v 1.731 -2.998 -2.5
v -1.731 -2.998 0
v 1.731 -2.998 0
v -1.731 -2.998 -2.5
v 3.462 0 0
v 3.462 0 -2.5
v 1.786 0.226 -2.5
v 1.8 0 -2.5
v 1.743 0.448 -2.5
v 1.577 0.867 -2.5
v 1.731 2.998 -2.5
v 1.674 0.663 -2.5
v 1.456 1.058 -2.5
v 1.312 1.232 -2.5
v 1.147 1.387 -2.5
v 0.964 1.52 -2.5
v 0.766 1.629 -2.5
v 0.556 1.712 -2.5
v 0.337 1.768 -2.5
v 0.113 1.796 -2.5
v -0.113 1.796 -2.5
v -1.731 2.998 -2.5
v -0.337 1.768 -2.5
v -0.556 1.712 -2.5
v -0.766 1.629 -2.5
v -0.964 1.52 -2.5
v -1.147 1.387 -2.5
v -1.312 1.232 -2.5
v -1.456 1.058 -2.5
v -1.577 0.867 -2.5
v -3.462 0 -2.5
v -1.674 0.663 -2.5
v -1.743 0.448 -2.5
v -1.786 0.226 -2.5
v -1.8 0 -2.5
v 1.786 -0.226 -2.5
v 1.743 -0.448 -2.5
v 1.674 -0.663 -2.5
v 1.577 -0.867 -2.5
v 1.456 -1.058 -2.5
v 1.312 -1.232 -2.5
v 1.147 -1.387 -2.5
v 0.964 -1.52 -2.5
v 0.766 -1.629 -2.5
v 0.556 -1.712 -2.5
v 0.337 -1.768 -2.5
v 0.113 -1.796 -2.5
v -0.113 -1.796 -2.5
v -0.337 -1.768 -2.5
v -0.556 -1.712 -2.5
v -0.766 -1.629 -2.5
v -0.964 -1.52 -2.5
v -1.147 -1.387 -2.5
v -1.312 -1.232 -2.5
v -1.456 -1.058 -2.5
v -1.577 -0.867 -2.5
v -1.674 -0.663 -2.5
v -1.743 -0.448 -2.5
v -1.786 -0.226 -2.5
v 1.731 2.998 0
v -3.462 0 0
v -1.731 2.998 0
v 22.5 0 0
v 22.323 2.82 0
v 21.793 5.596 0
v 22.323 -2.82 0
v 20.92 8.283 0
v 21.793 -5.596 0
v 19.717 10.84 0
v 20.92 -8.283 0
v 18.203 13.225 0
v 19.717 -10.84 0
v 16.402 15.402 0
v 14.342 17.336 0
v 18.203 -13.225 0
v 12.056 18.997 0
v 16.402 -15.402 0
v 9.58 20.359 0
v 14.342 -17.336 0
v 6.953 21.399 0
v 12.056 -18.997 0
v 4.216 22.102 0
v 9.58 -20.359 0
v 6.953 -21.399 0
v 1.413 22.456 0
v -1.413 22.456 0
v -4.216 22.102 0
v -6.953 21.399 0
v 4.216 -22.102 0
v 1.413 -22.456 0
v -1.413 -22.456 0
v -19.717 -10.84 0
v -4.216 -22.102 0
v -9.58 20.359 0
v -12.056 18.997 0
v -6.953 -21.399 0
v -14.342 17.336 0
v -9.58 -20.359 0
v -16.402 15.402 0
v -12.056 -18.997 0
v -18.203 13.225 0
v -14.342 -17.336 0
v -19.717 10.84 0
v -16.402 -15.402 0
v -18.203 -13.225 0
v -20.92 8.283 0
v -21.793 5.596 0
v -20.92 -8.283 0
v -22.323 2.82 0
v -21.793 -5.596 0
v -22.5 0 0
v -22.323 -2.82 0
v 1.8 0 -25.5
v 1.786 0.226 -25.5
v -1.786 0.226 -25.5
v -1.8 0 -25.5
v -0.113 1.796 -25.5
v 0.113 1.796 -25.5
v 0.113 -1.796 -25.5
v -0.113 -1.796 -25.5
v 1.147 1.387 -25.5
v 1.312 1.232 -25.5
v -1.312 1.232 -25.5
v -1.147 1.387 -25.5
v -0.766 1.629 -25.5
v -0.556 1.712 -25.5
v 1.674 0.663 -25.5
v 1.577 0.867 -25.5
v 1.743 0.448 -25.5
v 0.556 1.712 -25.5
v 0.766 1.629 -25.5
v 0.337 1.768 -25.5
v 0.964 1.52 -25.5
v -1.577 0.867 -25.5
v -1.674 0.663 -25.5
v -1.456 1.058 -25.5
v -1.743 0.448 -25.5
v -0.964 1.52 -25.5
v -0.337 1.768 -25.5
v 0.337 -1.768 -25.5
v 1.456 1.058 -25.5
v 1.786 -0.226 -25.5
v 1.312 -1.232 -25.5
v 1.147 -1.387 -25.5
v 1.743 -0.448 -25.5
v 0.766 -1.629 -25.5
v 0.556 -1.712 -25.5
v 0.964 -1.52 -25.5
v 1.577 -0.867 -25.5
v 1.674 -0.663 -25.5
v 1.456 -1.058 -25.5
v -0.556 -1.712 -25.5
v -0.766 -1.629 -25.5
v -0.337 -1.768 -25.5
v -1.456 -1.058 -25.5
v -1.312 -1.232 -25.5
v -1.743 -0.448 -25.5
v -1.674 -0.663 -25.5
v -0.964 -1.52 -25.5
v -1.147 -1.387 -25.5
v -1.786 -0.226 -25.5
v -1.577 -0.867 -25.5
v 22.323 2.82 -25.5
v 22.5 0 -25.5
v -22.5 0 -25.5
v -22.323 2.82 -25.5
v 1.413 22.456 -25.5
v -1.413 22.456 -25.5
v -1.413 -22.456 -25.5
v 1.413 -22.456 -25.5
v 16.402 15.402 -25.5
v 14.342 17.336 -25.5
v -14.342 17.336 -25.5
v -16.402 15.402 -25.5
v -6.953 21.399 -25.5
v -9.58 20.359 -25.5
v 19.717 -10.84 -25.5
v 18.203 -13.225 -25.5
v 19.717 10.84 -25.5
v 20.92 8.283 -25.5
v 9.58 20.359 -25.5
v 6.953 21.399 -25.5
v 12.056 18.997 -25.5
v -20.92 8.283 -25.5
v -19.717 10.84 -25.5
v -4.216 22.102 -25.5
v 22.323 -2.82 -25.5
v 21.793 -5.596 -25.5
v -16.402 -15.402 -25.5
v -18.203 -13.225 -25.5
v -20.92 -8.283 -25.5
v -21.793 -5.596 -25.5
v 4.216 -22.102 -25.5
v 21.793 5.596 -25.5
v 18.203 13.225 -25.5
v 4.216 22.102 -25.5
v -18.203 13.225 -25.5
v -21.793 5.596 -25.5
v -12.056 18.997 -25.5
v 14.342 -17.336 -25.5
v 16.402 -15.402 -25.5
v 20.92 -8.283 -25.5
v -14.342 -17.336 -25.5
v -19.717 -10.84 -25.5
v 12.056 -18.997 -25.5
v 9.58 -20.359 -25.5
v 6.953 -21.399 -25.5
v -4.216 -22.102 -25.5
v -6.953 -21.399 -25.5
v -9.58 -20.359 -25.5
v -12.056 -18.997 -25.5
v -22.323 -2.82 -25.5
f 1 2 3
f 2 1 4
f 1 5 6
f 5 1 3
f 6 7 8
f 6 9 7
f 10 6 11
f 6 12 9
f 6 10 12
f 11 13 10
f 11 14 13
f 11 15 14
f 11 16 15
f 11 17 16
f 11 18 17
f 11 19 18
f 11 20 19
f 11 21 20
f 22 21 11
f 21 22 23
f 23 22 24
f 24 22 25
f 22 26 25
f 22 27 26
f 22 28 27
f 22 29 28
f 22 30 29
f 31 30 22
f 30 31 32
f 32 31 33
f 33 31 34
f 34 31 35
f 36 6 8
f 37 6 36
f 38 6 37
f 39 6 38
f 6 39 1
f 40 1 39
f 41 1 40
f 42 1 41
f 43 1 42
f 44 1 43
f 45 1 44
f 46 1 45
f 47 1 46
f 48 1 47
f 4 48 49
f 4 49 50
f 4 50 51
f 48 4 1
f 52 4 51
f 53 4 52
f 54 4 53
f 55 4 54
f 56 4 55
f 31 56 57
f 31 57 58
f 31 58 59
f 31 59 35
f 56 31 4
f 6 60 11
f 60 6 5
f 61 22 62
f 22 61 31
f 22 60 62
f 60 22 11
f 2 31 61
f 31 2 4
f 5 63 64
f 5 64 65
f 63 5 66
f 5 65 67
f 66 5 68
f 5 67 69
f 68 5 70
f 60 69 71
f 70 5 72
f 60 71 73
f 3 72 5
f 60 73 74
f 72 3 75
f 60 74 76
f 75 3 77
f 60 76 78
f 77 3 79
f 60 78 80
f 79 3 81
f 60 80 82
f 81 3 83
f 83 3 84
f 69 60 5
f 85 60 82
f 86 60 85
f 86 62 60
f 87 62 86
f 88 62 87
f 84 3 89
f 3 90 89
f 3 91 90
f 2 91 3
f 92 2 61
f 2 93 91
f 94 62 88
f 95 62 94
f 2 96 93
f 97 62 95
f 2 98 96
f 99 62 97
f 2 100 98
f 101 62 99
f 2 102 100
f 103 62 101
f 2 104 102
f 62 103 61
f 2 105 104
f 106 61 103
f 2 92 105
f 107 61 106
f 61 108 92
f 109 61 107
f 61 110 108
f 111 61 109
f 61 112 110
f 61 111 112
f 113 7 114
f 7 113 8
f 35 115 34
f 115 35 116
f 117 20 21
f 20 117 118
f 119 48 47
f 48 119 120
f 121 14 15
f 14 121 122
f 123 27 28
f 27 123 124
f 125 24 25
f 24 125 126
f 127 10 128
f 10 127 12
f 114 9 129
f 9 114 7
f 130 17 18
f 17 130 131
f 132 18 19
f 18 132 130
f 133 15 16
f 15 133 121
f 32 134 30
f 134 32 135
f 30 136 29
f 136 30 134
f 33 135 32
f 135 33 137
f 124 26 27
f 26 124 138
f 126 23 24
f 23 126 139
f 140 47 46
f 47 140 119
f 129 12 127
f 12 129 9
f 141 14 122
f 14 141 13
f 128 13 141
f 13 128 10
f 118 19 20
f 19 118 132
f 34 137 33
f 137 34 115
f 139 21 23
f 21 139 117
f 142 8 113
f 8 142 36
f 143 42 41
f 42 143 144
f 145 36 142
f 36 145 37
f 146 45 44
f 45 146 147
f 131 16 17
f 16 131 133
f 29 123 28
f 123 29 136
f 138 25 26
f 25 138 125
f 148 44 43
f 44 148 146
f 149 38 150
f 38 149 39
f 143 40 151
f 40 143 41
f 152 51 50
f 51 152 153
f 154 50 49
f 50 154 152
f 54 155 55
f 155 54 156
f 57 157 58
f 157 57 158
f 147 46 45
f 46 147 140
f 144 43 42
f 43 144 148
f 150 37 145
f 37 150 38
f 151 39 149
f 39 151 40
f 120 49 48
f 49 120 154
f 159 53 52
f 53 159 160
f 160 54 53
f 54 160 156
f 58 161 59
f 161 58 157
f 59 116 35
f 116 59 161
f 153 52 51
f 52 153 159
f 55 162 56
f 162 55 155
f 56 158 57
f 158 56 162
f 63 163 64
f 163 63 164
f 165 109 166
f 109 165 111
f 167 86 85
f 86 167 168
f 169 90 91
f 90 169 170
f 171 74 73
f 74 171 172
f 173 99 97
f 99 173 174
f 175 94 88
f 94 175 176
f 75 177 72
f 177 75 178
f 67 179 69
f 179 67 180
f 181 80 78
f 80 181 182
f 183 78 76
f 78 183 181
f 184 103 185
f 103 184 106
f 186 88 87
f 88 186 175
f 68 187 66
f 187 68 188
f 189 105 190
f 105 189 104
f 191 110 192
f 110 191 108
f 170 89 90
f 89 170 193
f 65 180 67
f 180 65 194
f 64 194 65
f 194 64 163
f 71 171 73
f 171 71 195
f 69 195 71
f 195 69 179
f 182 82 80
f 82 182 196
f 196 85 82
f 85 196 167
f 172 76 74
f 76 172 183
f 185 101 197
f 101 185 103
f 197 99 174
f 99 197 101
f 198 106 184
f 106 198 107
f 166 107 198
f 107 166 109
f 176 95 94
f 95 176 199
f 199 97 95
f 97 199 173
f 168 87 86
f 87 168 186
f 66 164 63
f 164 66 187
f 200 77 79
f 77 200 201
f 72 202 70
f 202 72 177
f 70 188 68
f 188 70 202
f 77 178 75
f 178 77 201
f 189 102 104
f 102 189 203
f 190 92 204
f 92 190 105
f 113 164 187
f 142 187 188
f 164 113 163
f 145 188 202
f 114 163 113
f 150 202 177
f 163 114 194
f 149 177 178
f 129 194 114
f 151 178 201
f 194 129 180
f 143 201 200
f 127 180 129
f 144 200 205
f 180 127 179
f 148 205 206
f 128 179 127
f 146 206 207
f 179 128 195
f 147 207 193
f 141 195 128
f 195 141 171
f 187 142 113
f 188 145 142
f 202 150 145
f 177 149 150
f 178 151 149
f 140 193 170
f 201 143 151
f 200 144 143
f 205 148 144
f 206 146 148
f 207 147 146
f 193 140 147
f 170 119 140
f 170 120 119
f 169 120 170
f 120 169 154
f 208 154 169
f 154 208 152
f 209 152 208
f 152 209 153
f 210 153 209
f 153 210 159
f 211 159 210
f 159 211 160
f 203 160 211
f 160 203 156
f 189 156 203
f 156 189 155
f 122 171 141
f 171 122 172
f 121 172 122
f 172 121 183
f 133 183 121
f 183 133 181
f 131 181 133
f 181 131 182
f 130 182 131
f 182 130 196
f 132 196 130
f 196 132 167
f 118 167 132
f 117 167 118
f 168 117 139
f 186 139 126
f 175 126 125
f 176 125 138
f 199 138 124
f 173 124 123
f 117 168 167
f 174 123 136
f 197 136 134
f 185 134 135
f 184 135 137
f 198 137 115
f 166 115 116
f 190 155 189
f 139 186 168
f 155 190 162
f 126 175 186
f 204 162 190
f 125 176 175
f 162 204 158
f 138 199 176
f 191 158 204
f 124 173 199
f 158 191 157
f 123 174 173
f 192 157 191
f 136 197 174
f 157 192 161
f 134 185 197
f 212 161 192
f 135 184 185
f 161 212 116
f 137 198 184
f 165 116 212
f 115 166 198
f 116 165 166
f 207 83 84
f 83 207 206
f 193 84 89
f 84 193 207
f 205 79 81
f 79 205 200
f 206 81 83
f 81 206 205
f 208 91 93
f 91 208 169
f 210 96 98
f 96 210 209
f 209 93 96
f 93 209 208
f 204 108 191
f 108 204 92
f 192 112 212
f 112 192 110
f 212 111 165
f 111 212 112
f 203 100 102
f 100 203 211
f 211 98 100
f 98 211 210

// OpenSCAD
$fn = 50;

difference() {
	union() {
		translate(v = [0, 0, -25.5]) {
			cylinder(h = 25.5, r = 22.5);
		}
	}
	union() {
		translate(v = [0, 0, 0]) {
			rotate(a = [0, 0, 0]) {
				difference() {
					union() {
						translate(v = [0, 0, -2.5]) {
							linear_extrude(height = 2.5) {
								polygon(points = [[3.4619999999999997, 0.0], [1.7310000000000003, 2.9981799479017264], [-1.7309999999999992, 2.9981799479017264], [-3.4619999999999997, 4.2397272186481365e-16], [-1.7310000000000014, -2.998179947901726], [1.7309999999999977, -2.9981799479017277]]);
							}
						}
					}
					union();
				}
			}
		}
		#translate(v = [0, 0, -100.0]) {
			cylinder(h = 200, r = 1.8);
		}
	}
}
